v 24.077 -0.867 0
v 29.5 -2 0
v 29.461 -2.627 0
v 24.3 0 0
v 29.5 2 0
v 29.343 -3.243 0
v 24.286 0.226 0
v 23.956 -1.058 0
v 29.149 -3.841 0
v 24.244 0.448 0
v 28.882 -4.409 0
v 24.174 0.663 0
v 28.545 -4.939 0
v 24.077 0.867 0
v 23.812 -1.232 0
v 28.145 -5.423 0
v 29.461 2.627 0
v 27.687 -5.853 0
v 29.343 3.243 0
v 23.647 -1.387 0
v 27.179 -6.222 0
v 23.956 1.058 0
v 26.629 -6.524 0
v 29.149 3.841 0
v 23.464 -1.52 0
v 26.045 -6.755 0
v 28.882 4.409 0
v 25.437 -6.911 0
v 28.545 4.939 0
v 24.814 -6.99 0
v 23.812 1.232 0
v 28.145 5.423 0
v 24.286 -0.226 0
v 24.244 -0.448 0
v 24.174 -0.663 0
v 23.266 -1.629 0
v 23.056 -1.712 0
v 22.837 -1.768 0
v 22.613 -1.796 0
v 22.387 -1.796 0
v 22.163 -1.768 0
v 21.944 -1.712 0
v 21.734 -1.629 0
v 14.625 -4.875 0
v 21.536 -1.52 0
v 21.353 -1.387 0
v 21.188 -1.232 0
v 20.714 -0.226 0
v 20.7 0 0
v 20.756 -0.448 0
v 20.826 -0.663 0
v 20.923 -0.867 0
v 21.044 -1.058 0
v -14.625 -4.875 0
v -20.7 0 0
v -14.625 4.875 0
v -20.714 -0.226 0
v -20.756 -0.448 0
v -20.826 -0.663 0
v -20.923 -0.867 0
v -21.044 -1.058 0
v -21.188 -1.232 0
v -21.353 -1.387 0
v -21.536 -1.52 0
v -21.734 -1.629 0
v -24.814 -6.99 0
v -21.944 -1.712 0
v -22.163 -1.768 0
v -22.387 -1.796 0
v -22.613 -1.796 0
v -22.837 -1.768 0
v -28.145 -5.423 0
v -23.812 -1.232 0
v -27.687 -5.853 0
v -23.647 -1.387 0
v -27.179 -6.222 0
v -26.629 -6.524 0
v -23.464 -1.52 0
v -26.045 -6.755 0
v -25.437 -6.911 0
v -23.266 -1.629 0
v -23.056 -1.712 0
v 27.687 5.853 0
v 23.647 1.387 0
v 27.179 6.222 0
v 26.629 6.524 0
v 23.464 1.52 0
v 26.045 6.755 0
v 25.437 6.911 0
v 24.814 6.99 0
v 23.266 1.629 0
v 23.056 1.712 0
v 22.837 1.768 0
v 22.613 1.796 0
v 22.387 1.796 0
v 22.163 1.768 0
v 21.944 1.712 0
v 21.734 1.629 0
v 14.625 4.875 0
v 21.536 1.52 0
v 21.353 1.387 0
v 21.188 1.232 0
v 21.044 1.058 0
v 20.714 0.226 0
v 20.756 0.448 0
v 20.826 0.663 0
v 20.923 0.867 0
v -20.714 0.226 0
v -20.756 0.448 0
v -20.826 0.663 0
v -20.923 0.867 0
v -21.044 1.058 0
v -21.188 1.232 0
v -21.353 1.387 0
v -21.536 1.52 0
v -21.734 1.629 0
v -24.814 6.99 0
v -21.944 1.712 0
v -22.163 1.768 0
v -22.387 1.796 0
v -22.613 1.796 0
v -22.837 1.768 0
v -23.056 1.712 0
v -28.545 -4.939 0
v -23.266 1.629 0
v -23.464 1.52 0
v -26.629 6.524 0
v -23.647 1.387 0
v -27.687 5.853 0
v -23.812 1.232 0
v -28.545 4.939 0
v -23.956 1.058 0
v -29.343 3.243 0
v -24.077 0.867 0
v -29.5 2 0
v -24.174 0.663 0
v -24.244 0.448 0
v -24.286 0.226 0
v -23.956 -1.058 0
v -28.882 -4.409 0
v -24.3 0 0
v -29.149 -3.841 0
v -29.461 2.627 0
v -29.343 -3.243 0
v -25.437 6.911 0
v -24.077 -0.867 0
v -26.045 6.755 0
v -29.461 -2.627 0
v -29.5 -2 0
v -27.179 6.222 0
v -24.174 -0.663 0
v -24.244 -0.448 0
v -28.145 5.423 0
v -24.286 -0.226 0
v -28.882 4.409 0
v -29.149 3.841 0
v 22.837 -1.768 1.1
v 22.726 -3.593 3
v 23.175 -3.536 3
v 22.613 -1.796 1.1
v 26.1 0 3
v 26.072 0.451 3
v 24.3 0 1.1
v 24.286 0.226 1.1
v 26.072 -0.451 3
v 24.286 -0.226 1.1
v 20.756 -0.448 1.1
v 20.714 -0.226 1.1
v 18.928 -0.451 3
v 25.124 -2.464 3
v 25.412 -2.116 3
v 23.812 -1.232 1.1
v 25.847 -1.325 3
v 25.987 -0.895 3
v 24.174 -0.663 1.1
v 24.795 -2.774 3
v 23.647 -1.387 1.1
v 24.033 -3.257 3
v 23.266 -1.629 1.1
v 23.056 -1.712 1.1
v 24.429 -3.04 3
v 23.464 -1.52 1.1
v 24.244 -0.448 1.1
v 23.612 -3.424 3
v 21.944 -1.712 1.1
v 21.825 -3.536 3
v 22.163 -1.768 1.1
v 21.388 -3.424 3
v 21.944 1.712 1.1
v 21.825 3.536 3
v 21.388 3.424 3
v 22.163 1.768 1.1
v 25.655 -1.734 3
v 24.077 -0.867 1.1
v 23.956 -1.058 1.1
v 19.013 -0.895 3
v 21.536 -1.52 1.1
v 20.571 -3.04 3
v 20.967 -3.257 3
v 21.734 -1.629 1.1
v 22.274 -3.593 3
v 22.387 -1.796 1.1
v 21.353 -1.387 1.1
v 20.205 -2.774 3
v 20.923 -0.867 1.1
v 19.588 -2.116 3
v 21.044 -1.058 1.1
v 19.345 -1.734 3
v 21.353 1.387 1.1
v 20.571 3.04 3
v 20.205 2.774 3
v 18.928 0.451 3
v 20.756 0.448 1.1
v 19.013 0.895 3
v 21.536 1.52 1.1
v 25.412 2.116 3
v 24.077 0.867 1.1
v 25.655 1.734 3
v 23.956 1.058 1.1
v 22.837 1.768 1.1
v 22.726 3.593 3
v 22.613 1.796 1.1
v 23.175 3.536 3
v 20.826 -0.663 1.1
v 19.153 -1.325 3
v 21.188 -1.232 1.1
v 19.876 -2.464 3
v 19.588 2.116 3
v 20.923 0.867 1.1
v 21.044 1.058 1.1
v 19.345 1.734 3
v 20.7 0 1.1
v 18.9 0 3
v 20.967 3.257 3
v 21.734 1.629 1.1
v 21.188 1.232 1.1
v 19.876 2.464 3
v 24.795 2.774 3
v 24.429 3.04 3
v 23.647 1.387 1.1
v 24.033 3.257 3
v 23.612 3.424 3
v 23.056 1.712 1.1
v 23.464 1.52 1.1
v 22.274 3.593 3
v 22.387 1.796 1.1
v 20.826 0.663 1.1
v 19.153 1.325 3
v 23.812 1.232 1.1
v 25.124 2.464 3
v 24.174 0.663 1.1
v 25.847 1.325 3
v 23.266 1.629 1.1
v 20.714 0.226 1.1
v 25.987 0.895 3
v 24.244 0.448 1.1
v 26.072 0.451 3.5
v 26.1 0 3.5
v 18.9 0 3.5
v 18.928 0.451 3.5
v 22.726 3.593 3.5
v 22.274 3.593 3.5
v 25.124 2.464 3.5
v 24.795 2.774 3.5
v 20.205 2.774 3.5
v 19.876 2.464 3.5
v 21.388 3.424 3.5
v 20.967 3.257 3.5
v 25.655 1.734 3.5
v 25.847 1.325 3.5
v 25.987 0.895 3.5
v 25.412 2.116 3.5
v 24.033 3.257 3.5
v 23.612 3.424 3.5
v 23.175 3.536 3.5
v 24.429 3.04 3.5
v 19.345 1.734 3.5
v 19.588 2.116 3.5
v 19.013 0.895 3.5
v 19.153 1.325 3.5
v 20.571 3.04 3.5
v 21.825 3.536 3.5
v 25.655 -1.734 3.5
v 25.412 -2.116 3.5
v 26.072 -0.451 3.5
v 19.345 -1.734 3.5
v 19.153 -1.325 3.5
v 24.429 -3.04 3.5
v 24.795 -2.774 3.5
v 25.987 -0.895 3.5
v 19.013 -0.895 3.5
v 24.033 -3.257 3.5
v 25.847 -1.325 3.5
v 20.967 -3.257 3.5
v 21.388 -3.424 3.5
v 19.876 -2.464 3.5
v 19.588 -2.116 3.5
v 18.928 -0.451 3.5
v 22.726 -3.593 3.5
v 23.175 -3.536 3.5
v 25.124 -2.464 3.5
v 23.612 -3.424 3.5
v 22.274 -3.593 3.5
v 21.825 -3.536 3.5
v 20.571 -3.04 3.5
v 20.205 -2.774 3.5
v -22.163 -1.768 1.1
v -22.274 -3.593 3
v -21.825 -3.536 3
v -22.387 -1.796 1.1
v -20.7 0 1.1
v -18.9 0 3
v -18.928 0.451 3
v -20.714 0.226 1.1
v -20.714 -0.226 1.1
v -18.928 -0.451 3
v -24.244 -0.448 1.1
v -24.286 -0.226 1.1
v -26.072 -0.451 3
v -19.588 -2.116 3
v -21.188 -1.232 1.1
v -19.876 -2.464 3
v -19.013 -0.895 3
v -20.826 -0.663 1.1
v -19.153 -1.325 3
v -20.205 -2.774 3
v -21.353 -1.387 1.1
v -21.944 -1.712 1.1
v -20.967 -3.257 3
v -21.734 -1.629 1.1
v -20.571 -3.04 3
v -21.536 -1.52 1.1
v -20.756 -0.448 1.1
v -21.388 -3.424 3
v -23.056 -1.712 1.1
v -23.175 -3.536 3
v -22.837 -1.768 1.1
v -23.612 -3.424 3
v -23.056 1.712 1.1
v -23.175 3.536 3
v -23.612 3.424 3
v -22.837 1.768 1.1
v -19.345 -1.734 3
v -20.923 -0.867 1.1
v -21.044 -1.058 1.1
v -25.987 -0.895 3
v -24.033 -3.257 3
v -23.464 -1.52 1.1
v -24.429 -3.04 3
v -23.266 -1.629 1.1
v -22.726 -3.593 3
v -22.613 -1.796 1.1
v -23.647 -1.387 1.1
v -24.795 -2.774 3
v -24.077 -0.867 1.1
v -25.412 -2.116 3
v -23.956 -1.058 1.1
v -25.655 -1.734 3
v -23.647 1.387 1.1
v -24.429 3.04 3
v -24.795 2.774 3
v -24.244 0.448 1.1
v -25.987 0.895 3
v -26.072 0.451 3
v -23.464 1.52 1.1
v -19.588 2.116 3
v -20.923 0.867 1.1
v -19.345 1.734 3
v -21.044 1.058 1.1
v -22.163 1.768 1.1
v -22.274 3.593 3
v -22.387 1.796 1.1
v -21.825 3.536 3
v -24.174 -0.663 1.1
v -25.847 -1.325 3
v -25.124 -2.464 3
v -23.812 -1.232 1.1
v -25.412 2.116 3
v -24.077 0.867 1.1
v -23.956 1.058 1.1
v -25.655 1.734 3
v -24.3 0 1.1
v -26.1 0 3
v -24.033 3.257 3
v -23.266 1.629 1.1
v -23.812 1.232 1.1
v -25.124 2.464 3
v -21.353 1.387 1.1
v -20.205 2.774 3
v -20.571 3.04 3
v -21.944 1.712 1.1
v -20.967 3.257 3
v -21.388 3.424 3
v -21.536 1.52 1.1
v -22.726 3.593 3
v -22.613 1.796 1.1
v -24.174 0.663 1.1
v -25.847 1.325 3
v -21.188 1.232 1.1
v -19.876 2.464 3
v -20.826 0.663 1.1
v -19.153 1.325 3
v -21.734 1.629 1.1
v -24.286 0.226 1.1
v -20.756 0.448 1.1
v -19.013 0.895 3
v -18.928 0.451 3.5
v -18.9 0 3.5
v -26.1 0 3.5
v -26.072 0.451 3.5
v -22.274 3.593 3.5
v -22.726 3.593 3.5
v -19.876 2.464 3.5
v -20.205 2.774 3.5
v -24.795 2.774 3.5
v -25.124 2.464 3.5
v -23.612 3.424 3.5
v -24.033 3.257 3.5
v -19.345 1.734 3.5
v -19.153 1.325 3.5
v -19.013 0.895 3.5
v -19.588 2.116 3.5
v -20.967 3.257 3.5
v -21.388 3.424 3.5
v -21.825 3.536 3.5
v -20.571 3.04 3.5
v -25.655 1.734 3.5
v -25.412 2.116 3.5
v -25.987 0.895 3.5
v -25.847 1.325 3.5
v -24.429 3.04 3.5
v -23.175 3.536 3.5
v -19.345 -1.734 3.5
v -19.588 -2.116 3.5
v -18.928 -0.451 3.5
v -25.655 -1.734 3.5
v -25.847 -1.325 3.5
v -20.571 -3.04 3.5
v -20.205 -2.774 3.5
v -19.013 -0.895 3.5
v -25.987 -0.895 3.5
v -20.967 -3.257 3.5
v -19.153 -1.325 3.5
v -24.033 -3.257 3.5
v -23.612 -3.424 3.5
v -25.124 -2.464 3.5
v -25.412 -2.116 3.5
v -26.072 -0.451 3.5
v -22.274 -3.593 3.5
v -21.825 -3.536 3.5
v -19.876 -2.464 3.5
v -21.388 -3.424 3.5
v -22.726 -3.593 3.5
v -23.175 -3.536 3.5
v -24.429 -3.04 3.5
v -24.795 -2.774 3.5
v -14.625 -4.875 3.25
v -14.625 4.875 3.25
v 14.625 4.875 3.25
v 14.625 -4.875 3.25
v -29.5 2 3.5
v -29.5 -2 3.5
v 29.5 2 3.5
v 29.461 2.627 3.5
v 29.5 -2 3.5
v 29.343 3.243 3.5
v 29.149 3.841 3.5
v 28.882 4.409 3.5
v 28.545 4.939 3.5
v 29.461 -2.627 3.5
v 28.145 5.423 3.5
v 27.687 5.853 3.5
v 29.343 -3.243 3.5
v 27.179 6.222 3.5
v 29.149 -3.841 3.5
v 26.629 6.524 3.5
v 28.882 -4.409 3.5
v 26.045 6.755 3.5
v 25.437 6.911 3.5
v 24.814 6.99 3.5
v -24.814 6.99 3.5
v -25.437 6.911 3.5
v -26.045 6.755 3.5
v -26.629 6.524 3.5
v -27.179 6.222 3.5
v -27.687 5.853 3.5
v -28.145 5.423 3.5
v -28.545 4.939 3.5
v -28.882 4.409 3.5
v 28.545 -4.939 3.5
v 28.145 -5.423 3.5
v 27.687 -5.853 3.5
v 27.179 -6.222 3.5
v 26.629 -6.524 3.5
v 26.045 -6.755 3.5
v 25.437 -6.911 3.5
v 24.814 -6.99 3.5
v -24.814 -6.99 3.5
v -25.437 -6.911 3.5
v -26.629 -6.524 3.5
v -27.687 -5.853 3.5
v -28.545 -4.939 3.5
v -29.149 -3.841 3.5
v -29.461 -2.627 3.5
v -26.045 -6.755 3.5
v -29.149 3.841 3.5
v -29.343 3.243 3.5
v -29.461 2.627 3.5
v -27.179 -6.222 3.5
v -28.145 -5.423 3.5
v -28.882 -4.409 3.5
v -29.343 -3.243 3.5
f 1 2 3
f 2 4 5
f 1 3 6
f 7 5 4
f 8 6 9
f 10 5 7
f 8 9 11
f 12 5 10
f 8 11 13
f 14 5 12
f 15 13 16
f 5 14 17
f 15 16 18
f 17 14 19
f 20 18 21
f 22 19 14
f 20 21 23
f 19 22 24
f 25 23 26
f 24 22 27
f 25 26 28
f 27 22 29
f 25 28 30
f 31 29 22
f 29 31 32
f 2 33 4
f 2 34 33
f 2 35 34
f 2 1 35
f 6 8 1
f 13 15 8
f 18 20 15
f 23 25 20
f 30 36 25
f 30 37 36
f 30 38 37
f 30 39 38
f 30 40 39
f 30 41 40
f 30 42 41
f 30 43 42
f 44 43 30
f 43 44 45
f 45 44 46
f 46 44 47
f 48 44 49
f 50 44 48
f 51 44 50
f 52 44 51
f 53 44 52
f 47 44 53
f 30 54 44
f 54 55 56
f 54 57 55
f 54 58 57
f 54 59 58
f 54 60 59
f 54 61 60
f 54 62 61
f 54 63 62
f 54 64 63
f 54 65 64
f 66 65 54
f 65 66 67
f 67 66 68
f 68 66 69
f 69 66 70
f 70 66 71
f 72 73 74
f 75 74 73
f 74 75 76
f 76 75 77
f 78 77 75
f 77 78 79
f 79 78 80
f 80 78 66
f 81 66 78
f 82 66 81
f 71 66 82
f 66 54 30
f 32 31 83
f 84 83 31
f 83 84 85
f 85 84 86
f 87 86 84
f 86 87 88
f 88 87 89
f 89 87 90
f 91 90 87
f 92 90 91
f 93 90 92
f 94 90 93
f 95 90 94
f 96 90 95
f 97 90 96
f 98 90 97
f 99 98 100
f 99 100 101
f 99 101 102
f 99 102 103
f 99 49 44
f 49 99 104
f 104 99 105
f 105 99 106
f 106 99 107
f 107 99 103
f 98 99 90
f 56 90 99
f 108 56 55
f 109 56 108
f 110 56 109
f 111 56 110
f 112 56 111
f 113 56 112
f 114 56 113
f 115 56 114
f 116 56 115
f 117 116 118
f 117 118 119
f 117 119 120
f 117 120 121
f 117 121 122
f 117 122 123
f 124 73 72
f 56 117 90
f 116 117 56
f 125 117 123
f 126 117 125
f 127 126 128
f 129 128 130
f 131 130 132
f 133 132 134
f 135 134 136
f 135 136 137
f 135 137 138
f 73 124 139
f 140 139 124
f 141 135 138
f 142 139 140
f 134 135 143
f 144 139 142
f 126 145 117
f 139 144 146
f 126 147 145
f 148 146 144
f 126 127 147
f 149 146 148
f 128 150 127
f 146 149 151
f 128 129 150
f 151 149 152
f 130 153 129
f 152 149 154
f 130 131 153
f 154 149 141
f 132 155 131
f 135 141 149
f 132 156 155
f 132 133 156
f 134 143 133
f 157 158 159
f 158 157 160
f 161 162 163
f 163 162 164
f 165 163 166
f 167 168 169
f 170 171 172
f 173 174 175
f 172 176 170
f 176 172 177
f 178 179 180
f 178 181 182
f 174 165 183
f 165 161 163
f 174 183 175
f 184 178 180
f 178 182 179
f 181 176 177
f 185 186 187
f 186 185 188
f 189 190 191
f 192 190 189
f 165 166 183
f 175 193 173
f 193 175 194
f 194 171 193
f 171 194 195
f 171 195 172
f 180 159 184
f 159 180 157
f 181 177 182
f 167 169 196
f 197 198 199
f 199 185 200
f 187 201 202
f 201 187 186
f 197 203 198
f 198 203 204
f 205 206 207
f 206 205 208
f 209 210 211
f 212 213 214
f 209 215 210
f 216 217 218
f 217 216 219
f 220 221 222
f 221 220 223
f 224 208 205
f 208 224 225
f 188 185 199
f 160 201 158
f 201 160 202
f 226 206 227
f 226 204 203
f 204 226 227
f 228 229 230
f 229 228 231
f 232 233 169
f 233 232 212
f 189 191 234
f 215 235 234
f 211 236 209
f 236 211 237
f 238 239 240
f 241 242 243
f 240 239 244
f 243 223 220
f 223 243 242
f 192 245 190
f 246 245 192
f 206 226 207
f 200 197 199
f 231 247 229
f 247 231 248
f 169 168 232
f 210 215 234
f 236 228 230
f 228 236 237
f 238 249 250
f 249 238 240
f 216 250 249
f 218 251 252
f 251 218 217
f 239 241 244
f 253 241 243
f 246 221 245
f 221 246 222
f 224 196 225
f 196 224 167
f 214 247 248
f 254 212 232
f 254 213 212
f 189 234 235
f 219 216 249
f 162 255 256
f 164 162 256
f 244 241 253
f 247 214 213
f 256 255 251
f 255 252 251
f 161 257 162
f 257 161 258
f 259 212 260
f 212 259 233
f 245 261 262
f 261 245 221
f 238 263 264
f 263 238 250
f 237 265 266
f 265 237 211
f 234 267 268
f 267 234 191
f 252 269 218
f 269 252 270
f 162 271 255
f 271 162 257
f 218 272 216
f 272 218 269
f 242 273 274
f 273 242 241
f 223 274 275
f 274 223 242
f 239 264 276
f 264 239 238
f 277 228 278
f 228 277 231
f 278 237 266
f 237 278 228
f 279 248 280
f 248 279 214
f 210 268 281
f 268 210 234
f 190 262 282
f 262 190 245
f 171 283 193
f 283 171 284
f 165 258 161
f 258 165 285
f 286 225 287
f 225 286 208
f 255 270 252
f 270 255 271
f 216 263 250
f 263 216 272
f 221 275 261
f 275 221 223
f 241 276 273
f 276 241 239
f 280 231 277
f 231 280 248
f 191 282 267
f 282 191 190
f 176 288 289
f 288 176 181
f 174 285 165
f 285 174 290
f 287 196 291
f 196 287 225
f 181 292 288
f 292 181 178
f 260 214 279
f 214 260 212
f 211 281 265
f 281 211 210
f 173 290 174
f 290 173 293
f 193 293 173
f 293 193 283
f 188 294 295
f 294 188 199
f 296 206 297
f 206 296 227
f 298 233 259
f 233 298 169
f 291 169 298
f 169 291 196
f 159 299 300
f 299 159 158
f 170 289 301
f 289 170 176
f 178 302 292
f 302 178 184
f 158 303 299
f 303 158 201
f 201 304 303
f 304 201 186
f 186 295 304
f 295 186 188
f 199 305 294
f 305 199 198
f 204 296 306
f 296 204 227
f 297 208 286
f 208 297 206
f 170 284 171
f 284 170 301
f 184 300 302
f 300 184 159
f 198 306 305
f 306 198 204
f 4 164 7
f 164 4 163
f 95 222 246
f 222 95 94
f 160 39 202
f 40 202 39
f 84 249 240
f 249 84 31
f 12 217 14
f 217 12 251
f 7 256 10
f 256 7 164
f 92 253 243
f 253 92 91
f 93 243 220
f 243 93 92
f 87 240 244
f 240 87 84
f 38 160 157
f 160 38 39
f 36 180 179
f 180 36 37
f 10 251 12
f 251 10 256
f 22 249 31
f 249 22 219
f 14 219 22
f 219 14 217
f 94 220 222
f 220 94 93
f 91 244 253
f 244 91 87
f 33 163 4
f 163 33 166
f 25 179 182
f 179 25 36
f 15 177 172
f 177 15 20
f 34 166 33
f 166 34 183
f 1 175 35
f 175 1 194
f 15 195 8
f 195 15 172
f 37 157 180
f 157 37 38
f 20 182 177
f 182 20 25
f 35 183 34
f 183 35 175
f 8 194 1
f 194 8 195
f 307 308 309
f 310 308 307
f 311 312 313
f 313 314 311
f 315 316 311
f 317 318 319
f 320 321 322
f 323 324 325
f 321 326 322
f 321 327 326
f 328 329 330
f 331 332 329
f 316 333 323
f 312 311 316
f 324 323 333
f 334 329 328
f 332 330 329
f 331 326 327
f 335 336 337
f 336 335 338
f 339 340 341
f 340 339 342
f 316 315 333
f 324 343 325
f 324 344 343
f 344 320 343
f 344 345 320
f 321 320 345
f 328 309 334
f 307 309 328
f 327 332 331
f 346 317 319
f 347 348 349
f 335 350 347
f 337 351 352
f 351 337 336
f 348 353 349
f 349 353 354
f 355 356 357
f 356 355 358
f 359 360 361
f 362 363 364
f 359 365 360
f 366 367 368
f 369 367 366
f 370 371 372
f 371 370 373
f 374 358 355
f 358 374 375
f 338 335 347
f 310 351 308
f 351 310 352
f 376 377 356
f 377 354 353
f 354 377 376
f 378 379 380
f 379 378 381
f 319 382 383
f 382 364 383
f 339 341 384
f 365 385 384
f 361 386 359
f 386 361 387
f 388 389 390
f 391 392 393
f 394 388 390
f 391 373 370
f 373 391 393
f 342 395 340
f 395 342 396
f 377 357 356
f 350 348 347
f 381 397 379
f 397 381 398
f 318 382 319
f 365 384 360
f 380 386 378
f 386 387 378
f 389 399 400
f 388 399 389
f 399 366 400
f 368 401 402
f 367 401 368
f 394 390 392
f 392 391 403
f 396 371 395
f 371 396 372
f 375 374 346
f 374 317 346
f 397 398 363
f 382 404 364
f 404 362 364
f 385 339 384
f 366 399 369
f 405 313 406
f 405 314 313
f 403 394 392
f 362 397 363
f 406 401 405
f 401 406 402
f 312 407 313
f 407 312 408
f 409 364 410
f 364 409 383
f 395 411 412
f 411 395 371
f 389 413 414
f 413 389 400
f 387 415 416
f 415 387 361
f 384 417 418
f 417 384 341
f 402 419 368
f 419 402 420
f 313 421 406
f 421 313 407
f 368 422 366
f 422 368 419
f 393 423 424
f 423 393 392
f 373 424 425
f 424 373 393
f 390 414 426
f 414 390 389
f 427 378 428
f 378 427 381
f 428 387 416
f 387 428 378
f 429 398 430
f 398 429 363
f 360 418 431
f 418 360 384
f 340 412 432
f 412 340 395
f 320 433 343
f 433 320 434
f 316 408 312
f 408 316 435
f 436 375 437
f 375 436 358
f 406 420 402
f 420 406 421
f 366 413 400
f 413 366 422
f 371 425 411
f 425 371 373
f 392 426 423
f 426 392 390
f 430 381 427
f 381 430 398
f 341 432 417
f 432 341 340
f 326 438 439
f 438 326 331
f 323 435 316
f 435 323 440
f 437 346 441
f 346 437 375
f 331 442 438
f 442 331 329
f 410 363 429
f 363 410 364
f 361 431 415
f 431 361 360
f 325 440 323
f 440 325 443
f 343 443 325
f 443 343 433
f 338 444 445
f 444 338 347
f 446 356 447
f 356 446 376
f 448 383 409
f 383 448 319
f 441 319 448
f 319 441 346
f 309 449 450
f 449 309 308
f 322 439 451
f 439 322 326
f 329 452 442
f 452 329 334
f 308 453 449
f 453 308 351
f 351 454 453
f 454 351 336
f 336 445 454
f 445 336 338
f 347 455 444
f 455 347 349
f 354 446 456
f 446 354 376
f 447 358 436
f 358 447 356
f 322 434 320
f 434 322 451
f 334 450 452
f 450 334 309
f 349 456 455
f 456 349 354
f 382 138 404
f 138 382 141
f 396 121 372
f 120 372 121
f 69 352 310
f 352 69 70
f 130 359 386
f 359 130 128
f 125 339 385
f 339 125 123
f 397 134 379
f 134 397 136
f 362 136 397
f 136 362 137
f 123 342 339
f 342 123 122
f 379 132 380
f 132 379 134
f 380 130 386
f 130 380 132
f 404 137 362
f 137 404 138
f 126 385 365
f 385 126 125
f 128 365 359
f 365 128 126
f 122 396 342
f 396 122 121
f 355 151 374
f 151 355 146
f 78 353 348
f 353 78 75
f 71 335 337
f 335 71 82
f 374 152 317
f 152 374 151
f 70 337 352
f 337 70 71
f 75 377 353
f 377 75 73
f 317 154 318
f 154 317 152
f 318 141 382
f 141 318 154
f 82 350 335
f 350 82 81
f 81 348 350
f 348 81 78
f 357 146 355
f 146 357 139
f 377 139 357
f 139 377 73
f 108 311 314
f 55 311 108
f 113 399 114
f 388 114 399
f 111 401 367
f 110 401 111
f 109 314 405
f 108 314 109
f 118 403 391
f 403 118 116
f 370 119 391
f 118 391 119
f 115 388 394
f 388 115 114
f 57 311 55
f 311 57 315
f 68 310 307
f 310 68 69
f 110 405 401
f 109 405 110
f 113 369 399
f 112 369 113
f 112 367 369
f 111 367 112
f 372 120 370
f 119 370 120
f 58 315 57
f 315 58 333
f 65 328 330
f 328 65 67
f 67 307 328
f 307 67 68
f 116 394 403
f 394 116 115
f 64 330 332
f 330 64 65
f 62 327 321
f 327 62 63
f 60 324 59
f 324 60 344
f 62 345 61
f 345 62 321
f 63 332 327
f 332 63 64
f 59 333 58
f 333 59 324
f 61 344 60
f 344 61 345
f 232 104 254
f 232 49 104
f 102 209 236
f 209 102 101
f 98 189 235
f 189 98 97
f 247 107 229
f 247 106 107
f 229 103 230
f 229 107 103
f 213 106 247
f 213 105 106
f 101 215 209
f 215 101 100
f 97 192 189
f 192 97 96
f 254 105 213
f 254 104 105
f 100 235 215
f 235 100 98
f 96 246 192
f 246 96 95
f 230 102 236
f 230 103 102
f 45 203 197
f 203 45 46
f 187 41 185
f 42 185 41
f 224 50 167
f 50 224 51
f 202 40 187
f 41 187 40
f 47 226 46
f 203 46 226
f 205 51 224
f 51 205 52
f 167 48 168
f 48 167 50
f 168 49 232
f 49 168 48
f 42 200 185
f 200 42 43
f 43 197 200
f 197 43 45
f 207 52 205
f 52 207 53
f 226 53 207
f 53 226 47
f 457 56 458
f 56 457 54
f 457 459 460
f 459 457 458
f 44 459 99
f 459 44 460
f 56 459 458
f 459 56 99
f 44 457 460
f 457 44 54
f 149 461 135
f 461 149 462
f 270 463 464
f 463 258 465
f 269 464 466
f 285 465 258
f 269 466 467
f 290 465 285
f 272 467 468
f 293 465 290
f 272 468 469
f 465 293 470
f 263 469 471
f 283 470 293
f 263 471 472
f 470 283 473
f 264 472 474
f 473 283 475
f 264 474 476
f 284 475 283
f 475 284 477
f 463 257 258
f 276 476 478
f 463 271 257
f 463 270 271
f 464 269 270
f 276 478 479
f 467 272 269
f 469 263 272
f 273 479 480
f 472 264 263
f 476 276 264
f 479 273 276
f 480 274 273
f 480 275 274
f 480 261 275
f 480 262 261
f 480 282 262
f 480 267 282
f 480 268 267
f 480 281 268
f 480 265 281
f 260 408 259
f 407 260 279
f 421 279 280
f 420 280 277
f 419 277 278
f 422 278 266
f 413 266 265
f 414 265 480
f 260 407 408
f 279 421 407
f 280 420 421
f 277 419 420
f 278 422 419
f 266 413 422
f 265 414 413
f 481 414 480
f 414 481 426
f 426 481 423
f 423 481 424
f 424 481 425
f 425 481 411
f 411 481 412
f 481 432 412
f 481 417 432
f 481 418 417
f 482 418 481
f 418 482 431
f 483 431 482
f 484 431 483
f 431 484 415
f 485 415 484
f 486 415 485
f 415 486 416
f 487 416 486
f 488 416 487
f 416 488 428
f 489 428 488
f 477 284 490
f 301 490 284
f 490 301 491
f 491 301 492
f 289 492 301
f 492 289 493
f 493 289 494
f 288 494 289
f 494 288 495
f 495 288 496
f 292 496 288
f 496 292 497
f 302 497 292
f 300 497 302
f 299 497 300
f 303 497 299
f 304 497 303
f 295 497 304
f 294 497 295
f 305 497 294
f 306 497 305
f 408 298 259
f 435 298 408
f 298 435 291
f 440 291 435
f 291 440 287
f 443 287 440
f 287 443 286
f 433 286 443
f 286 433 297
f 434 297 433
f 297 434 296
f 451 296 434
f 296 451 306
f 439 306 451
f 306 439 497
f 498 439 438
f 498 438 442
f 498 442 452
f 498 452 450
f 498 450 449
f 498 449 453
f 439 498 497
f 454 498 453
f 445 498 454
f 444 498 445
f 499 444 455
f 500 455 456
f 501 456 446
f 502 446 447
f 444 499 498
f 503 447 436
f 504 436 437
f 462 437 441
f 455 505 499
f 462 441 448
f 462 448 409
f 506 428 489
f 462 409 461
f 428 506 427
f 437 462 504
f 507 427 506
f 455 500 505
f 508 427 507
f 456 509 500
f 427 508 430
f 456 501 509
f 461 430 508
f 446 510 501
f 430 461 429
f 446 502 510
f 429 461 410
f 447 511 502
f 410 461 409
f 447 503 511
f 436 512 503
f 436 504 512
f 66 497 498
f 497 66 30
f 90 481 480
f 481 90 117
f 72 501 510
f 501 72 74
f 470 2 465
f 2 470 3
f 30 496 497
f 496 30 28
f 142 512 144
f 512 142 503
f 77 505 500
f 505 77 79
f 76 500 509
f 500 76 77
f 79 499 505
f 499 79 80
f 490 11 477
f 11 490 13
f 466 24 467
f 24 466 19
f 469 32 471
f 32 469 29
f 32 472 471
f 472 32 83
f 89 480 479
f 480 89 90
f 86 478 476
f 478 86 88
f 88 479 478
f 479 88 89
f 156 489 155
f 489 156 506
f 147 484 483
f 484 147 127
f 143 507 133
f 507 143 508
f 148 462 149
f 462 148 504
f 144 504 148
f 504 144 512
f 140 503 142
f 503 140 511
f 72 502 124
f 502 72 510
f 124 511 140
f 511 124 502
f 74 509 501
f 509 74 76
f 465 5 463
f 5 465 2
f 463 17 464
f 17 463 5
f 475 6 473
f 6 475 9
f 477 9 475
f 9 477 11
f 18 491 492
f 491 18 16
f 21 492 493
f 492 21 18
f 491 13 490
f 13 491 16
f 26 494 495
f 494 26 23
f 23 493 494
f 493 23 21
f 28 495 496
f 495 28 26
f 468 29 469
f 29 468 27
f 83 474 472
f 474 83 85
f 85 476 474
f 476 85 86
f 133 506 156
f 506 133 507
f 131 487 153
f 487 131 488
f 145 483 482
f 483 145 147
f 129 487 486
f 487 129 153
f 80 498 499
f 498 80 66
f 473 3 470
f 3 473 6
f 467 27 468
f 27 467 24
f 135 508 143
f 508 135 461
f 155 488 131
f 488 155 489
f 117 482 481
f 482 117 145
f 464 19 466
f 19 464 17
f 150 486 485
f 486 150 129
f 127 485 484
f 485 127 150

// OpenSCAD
$fn = 50;


difference() {
	union() {
		hull() {
			translate(v = [-24.5000000000, 2.0000000000, 0]) {
				cylinder(h = 3.5000000000, r = 5);
			}
			translate(v = [24.5000000000, 2.0000000000, 0]) {
				cylinder(h = 3.5000000000, r = 5);
			}
			translate(v = [-24.5000000000, -2.0000000000, 0]) {
				cylinder(h = 3.5000000000, r = 5);
			}
			translate(v = [24.5000000000, -2.0000000000, 0]) {
				cylinder(h = 3.5000000000, r = 5);
			}
		}
	}
	union() {
		translate(v = [22.5000000000, 0, 3.0000000000]) {
			rotate(a = [0, 0, 0]) {
				difference() {
					union() {
						translate(v = [0, 0, -3.0000000000]) {
							cylinder(h = 3.0000000000, r = 1.5000000000);
						}
						translate(v = [0, 0, -1.9000000000]) {
							cylinder(h = 1.9000000000, r1 = 1.8000000000, r2 = 3.6000000000);
						}
						cylinder(h = 250, r = 3.6000000000);
						translate(v = [0, 0, -3.0000000000]) {
							cylinder(h = 3.0000000000, r = 1.8000000000);
						}
						translate(v = [0, 0, -3.0000000000]) {
							cylinder(h = 3.0000000000, r = 1.5000000000);
						}
					}
					union();
				}
			}
		}
		translate(v = [-22.5000000000, 0, 3.0000000000]) {
			rotate(a = [0, 0, 0]) {
				difference() {
					union() {
						translate(v = [0, 0, -3.0000000000]) {
							cylinder(h = 3.0000000000, r = 1.5000000000);
						}
						translate(v = [0, 0, -1.9000000000]) {
							cylinder(h = 1.9000000000, r1 = 1.8000000000, r2 = 3.6000000000);
						}
						cylinder(h = 250, r = 3.6000000000);
						translate(v = [0, 0, -3.0000000000]) {
							cylinder(h = 3.0000000000, r = 1.8000000000);
						}
						translate(v = [0, 0, -3.0000000000]) {
							cylinder(h = 3.0000000000, r = 1.5000000000);
						}
					}
					union();
				}
			}
		}
		translate(v = [-22.5000000000, 0.0000000000, 0]) {
			cylinder(h = 3.5000000000, r = 1.8000000000);
		}
		translate(v = [22.5000000000, 0.0000000000, 0]) {
			cylinder(h = 3.5000000000, r = 1.8000000000);
		}
		translate(v = [-22.5000000000, 0.0000000000, 0]) {
			cylinder(h = 3.5000000000, r = 1.8000000000);
		}
		translate(v = [22.5000000000, 0.0000000000, 0]) {
			cylinder(h = 3.5000000000, r = 1.8000000000);
		}
		translate(v = [-22.5000000000, 0.0000000000, 0]) {
			cylinder(h = 3.5000000000, r = 1.8000000000);
		}
		translate(v = [22.5000000000, 0.0000000000, 0]) {
			cylinder(h = 3.5000000000, r = 1.8000000000);
		}
		translate(v = [-22.5000000000, 0.0000000000, 0]) {
			cylinder(h = 3.5000000000, r = 1.8000000000);
		}
		translate(v = [22.5000000000, 0.0000000000, 0]) {
			cylinder(h = 3.5000000000, r = 1.8000000000);
		}
		#translate(v = [-14.6250000000, -4.8750000000, 0.0000000000]) {
			cube(size = [29.2500000000, 9.7500000000, 3.2500000000]);
		}
	}
}
